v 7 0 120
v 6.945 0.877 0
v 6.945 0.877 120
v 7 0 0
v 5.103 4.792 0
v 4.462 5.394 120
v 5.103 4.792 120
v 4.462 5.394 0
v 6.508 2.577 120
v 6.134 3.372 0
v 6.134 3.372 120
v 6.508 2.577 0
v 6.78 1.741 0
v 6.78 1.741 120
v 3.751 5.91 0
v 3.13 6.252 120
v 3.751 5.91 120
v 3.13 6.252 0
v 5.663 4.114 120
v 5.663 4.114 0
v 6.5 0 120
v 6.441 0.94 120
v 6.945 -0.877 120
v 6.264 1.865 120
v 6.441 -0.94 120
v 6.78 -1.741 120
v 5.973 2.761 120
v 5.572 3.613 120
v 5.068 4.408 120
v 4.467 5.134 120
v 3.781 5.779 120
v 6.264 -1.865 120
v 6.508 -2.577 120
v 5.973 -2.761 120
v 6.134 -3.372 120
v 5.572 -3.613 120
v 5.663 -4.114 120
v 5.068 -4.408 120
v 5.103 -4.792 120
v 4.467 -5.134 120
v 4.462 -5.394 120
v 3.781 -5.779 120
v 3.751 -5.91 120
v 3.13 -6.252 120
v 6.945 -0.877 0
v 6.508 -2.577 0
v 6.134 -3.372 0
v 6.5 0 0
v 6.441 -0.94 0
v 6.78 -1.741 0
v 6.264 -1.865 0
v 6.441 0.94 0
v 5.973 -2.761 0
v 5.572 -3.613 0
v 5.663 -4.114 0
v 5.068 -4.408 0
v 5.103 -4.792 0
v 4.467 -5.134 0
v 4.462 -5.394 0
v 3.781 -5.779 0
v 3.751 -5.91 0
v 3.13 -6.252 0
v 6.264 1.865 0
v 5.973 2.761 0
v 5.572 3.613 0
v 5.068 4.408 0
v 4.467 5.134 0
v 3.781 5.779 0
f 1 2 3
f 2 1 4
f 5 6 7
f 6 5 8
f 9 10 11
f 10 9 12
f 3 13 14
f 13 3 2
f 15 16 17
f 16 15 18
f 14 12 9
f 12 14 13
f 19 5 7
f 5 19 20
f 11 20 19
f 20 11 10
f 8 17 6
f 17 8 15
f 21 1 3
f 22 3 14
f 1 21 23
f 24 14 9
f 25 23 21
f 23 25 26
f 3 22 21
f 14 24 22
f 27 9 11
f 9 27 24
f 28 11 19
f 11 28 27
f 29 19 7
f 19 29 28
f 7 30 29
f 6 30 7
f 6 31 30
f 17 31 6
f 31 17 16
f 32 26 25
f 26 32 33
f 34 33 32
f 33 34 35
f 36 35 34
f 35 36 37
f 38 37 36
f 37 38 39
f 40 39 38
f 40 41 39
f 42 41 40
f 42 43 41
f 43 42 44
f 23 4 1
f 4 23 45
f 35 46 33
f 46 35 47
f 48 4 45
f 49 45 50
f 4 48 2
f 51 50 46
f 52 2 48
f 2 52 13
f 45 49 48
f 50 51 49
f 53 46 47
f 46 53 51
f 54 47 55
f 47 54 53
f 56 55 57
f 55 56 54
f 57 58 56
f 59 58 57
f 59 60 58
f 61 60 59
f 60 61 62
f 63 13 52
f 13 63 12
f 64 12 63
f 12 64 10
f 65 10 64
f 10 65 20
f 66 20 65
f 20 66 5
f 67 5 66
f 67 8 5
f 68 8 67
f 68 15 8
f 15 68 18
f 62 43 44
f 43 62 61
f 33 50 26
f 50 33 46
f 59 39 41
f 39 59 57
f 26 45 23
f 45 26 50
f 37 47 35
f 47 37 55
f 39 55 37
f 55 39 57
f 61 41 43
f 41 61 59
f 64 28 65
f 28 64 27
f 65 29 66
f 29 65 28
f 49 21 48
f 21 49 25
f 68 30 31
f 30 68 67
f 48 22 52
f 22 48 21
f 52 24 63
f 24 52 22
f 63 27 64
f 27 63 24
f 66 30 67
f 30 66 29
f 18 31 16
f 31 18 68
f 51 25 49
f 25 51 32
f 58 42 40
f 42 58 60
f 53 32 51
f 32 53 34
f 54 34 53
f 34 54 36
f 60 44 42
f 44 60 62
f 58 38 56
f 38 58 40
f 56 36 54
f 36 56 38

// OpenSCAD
$fn = 50;


difference() {
	union() {
		cylinder(h = 120, r = 7.0000000000);
		translate(v = [-4.0000000000, 0, 0]) {
			cylinder(h = 120, r = 7.0000000000);
		}
	}
	union() {
		cylinder(h = 120, r = 3.2500000000);
		cylinder(h = 120, r = 1.8000000000);
		cylinder(h = 120, r = 1.8000000000);
		cylinder(h = 120, r = 1.8000000000);
		translate(v = [-8.5000000000, 0, 0]) {
			hull() {
				translate(v = [-3.7500000000, 0.0000000000, 0]) {
					cylinder(h = 120, r = 7.5000000000);
				}
				translate(v = [3.7500000000, 0.0000000000, 0]) {
					cylinder(h = 120, r = 7.5000000000);
				}
				translate(v = [-3.7500000000, -0.0000000000, 0]) {
					cylinder(h = 120, r = 7.5000000000);
				}
				translate(v = [3.7500000000, -0.0000000000, 0]) {
					cylinder(h = 120, r = 7.5000000000);
				}
			}
		}
		translate(v = [-1.0000000000, 0, 0.0000000000]) {
			cylinder(h = 120, r = 7.5000000000);
		}
	}
}
